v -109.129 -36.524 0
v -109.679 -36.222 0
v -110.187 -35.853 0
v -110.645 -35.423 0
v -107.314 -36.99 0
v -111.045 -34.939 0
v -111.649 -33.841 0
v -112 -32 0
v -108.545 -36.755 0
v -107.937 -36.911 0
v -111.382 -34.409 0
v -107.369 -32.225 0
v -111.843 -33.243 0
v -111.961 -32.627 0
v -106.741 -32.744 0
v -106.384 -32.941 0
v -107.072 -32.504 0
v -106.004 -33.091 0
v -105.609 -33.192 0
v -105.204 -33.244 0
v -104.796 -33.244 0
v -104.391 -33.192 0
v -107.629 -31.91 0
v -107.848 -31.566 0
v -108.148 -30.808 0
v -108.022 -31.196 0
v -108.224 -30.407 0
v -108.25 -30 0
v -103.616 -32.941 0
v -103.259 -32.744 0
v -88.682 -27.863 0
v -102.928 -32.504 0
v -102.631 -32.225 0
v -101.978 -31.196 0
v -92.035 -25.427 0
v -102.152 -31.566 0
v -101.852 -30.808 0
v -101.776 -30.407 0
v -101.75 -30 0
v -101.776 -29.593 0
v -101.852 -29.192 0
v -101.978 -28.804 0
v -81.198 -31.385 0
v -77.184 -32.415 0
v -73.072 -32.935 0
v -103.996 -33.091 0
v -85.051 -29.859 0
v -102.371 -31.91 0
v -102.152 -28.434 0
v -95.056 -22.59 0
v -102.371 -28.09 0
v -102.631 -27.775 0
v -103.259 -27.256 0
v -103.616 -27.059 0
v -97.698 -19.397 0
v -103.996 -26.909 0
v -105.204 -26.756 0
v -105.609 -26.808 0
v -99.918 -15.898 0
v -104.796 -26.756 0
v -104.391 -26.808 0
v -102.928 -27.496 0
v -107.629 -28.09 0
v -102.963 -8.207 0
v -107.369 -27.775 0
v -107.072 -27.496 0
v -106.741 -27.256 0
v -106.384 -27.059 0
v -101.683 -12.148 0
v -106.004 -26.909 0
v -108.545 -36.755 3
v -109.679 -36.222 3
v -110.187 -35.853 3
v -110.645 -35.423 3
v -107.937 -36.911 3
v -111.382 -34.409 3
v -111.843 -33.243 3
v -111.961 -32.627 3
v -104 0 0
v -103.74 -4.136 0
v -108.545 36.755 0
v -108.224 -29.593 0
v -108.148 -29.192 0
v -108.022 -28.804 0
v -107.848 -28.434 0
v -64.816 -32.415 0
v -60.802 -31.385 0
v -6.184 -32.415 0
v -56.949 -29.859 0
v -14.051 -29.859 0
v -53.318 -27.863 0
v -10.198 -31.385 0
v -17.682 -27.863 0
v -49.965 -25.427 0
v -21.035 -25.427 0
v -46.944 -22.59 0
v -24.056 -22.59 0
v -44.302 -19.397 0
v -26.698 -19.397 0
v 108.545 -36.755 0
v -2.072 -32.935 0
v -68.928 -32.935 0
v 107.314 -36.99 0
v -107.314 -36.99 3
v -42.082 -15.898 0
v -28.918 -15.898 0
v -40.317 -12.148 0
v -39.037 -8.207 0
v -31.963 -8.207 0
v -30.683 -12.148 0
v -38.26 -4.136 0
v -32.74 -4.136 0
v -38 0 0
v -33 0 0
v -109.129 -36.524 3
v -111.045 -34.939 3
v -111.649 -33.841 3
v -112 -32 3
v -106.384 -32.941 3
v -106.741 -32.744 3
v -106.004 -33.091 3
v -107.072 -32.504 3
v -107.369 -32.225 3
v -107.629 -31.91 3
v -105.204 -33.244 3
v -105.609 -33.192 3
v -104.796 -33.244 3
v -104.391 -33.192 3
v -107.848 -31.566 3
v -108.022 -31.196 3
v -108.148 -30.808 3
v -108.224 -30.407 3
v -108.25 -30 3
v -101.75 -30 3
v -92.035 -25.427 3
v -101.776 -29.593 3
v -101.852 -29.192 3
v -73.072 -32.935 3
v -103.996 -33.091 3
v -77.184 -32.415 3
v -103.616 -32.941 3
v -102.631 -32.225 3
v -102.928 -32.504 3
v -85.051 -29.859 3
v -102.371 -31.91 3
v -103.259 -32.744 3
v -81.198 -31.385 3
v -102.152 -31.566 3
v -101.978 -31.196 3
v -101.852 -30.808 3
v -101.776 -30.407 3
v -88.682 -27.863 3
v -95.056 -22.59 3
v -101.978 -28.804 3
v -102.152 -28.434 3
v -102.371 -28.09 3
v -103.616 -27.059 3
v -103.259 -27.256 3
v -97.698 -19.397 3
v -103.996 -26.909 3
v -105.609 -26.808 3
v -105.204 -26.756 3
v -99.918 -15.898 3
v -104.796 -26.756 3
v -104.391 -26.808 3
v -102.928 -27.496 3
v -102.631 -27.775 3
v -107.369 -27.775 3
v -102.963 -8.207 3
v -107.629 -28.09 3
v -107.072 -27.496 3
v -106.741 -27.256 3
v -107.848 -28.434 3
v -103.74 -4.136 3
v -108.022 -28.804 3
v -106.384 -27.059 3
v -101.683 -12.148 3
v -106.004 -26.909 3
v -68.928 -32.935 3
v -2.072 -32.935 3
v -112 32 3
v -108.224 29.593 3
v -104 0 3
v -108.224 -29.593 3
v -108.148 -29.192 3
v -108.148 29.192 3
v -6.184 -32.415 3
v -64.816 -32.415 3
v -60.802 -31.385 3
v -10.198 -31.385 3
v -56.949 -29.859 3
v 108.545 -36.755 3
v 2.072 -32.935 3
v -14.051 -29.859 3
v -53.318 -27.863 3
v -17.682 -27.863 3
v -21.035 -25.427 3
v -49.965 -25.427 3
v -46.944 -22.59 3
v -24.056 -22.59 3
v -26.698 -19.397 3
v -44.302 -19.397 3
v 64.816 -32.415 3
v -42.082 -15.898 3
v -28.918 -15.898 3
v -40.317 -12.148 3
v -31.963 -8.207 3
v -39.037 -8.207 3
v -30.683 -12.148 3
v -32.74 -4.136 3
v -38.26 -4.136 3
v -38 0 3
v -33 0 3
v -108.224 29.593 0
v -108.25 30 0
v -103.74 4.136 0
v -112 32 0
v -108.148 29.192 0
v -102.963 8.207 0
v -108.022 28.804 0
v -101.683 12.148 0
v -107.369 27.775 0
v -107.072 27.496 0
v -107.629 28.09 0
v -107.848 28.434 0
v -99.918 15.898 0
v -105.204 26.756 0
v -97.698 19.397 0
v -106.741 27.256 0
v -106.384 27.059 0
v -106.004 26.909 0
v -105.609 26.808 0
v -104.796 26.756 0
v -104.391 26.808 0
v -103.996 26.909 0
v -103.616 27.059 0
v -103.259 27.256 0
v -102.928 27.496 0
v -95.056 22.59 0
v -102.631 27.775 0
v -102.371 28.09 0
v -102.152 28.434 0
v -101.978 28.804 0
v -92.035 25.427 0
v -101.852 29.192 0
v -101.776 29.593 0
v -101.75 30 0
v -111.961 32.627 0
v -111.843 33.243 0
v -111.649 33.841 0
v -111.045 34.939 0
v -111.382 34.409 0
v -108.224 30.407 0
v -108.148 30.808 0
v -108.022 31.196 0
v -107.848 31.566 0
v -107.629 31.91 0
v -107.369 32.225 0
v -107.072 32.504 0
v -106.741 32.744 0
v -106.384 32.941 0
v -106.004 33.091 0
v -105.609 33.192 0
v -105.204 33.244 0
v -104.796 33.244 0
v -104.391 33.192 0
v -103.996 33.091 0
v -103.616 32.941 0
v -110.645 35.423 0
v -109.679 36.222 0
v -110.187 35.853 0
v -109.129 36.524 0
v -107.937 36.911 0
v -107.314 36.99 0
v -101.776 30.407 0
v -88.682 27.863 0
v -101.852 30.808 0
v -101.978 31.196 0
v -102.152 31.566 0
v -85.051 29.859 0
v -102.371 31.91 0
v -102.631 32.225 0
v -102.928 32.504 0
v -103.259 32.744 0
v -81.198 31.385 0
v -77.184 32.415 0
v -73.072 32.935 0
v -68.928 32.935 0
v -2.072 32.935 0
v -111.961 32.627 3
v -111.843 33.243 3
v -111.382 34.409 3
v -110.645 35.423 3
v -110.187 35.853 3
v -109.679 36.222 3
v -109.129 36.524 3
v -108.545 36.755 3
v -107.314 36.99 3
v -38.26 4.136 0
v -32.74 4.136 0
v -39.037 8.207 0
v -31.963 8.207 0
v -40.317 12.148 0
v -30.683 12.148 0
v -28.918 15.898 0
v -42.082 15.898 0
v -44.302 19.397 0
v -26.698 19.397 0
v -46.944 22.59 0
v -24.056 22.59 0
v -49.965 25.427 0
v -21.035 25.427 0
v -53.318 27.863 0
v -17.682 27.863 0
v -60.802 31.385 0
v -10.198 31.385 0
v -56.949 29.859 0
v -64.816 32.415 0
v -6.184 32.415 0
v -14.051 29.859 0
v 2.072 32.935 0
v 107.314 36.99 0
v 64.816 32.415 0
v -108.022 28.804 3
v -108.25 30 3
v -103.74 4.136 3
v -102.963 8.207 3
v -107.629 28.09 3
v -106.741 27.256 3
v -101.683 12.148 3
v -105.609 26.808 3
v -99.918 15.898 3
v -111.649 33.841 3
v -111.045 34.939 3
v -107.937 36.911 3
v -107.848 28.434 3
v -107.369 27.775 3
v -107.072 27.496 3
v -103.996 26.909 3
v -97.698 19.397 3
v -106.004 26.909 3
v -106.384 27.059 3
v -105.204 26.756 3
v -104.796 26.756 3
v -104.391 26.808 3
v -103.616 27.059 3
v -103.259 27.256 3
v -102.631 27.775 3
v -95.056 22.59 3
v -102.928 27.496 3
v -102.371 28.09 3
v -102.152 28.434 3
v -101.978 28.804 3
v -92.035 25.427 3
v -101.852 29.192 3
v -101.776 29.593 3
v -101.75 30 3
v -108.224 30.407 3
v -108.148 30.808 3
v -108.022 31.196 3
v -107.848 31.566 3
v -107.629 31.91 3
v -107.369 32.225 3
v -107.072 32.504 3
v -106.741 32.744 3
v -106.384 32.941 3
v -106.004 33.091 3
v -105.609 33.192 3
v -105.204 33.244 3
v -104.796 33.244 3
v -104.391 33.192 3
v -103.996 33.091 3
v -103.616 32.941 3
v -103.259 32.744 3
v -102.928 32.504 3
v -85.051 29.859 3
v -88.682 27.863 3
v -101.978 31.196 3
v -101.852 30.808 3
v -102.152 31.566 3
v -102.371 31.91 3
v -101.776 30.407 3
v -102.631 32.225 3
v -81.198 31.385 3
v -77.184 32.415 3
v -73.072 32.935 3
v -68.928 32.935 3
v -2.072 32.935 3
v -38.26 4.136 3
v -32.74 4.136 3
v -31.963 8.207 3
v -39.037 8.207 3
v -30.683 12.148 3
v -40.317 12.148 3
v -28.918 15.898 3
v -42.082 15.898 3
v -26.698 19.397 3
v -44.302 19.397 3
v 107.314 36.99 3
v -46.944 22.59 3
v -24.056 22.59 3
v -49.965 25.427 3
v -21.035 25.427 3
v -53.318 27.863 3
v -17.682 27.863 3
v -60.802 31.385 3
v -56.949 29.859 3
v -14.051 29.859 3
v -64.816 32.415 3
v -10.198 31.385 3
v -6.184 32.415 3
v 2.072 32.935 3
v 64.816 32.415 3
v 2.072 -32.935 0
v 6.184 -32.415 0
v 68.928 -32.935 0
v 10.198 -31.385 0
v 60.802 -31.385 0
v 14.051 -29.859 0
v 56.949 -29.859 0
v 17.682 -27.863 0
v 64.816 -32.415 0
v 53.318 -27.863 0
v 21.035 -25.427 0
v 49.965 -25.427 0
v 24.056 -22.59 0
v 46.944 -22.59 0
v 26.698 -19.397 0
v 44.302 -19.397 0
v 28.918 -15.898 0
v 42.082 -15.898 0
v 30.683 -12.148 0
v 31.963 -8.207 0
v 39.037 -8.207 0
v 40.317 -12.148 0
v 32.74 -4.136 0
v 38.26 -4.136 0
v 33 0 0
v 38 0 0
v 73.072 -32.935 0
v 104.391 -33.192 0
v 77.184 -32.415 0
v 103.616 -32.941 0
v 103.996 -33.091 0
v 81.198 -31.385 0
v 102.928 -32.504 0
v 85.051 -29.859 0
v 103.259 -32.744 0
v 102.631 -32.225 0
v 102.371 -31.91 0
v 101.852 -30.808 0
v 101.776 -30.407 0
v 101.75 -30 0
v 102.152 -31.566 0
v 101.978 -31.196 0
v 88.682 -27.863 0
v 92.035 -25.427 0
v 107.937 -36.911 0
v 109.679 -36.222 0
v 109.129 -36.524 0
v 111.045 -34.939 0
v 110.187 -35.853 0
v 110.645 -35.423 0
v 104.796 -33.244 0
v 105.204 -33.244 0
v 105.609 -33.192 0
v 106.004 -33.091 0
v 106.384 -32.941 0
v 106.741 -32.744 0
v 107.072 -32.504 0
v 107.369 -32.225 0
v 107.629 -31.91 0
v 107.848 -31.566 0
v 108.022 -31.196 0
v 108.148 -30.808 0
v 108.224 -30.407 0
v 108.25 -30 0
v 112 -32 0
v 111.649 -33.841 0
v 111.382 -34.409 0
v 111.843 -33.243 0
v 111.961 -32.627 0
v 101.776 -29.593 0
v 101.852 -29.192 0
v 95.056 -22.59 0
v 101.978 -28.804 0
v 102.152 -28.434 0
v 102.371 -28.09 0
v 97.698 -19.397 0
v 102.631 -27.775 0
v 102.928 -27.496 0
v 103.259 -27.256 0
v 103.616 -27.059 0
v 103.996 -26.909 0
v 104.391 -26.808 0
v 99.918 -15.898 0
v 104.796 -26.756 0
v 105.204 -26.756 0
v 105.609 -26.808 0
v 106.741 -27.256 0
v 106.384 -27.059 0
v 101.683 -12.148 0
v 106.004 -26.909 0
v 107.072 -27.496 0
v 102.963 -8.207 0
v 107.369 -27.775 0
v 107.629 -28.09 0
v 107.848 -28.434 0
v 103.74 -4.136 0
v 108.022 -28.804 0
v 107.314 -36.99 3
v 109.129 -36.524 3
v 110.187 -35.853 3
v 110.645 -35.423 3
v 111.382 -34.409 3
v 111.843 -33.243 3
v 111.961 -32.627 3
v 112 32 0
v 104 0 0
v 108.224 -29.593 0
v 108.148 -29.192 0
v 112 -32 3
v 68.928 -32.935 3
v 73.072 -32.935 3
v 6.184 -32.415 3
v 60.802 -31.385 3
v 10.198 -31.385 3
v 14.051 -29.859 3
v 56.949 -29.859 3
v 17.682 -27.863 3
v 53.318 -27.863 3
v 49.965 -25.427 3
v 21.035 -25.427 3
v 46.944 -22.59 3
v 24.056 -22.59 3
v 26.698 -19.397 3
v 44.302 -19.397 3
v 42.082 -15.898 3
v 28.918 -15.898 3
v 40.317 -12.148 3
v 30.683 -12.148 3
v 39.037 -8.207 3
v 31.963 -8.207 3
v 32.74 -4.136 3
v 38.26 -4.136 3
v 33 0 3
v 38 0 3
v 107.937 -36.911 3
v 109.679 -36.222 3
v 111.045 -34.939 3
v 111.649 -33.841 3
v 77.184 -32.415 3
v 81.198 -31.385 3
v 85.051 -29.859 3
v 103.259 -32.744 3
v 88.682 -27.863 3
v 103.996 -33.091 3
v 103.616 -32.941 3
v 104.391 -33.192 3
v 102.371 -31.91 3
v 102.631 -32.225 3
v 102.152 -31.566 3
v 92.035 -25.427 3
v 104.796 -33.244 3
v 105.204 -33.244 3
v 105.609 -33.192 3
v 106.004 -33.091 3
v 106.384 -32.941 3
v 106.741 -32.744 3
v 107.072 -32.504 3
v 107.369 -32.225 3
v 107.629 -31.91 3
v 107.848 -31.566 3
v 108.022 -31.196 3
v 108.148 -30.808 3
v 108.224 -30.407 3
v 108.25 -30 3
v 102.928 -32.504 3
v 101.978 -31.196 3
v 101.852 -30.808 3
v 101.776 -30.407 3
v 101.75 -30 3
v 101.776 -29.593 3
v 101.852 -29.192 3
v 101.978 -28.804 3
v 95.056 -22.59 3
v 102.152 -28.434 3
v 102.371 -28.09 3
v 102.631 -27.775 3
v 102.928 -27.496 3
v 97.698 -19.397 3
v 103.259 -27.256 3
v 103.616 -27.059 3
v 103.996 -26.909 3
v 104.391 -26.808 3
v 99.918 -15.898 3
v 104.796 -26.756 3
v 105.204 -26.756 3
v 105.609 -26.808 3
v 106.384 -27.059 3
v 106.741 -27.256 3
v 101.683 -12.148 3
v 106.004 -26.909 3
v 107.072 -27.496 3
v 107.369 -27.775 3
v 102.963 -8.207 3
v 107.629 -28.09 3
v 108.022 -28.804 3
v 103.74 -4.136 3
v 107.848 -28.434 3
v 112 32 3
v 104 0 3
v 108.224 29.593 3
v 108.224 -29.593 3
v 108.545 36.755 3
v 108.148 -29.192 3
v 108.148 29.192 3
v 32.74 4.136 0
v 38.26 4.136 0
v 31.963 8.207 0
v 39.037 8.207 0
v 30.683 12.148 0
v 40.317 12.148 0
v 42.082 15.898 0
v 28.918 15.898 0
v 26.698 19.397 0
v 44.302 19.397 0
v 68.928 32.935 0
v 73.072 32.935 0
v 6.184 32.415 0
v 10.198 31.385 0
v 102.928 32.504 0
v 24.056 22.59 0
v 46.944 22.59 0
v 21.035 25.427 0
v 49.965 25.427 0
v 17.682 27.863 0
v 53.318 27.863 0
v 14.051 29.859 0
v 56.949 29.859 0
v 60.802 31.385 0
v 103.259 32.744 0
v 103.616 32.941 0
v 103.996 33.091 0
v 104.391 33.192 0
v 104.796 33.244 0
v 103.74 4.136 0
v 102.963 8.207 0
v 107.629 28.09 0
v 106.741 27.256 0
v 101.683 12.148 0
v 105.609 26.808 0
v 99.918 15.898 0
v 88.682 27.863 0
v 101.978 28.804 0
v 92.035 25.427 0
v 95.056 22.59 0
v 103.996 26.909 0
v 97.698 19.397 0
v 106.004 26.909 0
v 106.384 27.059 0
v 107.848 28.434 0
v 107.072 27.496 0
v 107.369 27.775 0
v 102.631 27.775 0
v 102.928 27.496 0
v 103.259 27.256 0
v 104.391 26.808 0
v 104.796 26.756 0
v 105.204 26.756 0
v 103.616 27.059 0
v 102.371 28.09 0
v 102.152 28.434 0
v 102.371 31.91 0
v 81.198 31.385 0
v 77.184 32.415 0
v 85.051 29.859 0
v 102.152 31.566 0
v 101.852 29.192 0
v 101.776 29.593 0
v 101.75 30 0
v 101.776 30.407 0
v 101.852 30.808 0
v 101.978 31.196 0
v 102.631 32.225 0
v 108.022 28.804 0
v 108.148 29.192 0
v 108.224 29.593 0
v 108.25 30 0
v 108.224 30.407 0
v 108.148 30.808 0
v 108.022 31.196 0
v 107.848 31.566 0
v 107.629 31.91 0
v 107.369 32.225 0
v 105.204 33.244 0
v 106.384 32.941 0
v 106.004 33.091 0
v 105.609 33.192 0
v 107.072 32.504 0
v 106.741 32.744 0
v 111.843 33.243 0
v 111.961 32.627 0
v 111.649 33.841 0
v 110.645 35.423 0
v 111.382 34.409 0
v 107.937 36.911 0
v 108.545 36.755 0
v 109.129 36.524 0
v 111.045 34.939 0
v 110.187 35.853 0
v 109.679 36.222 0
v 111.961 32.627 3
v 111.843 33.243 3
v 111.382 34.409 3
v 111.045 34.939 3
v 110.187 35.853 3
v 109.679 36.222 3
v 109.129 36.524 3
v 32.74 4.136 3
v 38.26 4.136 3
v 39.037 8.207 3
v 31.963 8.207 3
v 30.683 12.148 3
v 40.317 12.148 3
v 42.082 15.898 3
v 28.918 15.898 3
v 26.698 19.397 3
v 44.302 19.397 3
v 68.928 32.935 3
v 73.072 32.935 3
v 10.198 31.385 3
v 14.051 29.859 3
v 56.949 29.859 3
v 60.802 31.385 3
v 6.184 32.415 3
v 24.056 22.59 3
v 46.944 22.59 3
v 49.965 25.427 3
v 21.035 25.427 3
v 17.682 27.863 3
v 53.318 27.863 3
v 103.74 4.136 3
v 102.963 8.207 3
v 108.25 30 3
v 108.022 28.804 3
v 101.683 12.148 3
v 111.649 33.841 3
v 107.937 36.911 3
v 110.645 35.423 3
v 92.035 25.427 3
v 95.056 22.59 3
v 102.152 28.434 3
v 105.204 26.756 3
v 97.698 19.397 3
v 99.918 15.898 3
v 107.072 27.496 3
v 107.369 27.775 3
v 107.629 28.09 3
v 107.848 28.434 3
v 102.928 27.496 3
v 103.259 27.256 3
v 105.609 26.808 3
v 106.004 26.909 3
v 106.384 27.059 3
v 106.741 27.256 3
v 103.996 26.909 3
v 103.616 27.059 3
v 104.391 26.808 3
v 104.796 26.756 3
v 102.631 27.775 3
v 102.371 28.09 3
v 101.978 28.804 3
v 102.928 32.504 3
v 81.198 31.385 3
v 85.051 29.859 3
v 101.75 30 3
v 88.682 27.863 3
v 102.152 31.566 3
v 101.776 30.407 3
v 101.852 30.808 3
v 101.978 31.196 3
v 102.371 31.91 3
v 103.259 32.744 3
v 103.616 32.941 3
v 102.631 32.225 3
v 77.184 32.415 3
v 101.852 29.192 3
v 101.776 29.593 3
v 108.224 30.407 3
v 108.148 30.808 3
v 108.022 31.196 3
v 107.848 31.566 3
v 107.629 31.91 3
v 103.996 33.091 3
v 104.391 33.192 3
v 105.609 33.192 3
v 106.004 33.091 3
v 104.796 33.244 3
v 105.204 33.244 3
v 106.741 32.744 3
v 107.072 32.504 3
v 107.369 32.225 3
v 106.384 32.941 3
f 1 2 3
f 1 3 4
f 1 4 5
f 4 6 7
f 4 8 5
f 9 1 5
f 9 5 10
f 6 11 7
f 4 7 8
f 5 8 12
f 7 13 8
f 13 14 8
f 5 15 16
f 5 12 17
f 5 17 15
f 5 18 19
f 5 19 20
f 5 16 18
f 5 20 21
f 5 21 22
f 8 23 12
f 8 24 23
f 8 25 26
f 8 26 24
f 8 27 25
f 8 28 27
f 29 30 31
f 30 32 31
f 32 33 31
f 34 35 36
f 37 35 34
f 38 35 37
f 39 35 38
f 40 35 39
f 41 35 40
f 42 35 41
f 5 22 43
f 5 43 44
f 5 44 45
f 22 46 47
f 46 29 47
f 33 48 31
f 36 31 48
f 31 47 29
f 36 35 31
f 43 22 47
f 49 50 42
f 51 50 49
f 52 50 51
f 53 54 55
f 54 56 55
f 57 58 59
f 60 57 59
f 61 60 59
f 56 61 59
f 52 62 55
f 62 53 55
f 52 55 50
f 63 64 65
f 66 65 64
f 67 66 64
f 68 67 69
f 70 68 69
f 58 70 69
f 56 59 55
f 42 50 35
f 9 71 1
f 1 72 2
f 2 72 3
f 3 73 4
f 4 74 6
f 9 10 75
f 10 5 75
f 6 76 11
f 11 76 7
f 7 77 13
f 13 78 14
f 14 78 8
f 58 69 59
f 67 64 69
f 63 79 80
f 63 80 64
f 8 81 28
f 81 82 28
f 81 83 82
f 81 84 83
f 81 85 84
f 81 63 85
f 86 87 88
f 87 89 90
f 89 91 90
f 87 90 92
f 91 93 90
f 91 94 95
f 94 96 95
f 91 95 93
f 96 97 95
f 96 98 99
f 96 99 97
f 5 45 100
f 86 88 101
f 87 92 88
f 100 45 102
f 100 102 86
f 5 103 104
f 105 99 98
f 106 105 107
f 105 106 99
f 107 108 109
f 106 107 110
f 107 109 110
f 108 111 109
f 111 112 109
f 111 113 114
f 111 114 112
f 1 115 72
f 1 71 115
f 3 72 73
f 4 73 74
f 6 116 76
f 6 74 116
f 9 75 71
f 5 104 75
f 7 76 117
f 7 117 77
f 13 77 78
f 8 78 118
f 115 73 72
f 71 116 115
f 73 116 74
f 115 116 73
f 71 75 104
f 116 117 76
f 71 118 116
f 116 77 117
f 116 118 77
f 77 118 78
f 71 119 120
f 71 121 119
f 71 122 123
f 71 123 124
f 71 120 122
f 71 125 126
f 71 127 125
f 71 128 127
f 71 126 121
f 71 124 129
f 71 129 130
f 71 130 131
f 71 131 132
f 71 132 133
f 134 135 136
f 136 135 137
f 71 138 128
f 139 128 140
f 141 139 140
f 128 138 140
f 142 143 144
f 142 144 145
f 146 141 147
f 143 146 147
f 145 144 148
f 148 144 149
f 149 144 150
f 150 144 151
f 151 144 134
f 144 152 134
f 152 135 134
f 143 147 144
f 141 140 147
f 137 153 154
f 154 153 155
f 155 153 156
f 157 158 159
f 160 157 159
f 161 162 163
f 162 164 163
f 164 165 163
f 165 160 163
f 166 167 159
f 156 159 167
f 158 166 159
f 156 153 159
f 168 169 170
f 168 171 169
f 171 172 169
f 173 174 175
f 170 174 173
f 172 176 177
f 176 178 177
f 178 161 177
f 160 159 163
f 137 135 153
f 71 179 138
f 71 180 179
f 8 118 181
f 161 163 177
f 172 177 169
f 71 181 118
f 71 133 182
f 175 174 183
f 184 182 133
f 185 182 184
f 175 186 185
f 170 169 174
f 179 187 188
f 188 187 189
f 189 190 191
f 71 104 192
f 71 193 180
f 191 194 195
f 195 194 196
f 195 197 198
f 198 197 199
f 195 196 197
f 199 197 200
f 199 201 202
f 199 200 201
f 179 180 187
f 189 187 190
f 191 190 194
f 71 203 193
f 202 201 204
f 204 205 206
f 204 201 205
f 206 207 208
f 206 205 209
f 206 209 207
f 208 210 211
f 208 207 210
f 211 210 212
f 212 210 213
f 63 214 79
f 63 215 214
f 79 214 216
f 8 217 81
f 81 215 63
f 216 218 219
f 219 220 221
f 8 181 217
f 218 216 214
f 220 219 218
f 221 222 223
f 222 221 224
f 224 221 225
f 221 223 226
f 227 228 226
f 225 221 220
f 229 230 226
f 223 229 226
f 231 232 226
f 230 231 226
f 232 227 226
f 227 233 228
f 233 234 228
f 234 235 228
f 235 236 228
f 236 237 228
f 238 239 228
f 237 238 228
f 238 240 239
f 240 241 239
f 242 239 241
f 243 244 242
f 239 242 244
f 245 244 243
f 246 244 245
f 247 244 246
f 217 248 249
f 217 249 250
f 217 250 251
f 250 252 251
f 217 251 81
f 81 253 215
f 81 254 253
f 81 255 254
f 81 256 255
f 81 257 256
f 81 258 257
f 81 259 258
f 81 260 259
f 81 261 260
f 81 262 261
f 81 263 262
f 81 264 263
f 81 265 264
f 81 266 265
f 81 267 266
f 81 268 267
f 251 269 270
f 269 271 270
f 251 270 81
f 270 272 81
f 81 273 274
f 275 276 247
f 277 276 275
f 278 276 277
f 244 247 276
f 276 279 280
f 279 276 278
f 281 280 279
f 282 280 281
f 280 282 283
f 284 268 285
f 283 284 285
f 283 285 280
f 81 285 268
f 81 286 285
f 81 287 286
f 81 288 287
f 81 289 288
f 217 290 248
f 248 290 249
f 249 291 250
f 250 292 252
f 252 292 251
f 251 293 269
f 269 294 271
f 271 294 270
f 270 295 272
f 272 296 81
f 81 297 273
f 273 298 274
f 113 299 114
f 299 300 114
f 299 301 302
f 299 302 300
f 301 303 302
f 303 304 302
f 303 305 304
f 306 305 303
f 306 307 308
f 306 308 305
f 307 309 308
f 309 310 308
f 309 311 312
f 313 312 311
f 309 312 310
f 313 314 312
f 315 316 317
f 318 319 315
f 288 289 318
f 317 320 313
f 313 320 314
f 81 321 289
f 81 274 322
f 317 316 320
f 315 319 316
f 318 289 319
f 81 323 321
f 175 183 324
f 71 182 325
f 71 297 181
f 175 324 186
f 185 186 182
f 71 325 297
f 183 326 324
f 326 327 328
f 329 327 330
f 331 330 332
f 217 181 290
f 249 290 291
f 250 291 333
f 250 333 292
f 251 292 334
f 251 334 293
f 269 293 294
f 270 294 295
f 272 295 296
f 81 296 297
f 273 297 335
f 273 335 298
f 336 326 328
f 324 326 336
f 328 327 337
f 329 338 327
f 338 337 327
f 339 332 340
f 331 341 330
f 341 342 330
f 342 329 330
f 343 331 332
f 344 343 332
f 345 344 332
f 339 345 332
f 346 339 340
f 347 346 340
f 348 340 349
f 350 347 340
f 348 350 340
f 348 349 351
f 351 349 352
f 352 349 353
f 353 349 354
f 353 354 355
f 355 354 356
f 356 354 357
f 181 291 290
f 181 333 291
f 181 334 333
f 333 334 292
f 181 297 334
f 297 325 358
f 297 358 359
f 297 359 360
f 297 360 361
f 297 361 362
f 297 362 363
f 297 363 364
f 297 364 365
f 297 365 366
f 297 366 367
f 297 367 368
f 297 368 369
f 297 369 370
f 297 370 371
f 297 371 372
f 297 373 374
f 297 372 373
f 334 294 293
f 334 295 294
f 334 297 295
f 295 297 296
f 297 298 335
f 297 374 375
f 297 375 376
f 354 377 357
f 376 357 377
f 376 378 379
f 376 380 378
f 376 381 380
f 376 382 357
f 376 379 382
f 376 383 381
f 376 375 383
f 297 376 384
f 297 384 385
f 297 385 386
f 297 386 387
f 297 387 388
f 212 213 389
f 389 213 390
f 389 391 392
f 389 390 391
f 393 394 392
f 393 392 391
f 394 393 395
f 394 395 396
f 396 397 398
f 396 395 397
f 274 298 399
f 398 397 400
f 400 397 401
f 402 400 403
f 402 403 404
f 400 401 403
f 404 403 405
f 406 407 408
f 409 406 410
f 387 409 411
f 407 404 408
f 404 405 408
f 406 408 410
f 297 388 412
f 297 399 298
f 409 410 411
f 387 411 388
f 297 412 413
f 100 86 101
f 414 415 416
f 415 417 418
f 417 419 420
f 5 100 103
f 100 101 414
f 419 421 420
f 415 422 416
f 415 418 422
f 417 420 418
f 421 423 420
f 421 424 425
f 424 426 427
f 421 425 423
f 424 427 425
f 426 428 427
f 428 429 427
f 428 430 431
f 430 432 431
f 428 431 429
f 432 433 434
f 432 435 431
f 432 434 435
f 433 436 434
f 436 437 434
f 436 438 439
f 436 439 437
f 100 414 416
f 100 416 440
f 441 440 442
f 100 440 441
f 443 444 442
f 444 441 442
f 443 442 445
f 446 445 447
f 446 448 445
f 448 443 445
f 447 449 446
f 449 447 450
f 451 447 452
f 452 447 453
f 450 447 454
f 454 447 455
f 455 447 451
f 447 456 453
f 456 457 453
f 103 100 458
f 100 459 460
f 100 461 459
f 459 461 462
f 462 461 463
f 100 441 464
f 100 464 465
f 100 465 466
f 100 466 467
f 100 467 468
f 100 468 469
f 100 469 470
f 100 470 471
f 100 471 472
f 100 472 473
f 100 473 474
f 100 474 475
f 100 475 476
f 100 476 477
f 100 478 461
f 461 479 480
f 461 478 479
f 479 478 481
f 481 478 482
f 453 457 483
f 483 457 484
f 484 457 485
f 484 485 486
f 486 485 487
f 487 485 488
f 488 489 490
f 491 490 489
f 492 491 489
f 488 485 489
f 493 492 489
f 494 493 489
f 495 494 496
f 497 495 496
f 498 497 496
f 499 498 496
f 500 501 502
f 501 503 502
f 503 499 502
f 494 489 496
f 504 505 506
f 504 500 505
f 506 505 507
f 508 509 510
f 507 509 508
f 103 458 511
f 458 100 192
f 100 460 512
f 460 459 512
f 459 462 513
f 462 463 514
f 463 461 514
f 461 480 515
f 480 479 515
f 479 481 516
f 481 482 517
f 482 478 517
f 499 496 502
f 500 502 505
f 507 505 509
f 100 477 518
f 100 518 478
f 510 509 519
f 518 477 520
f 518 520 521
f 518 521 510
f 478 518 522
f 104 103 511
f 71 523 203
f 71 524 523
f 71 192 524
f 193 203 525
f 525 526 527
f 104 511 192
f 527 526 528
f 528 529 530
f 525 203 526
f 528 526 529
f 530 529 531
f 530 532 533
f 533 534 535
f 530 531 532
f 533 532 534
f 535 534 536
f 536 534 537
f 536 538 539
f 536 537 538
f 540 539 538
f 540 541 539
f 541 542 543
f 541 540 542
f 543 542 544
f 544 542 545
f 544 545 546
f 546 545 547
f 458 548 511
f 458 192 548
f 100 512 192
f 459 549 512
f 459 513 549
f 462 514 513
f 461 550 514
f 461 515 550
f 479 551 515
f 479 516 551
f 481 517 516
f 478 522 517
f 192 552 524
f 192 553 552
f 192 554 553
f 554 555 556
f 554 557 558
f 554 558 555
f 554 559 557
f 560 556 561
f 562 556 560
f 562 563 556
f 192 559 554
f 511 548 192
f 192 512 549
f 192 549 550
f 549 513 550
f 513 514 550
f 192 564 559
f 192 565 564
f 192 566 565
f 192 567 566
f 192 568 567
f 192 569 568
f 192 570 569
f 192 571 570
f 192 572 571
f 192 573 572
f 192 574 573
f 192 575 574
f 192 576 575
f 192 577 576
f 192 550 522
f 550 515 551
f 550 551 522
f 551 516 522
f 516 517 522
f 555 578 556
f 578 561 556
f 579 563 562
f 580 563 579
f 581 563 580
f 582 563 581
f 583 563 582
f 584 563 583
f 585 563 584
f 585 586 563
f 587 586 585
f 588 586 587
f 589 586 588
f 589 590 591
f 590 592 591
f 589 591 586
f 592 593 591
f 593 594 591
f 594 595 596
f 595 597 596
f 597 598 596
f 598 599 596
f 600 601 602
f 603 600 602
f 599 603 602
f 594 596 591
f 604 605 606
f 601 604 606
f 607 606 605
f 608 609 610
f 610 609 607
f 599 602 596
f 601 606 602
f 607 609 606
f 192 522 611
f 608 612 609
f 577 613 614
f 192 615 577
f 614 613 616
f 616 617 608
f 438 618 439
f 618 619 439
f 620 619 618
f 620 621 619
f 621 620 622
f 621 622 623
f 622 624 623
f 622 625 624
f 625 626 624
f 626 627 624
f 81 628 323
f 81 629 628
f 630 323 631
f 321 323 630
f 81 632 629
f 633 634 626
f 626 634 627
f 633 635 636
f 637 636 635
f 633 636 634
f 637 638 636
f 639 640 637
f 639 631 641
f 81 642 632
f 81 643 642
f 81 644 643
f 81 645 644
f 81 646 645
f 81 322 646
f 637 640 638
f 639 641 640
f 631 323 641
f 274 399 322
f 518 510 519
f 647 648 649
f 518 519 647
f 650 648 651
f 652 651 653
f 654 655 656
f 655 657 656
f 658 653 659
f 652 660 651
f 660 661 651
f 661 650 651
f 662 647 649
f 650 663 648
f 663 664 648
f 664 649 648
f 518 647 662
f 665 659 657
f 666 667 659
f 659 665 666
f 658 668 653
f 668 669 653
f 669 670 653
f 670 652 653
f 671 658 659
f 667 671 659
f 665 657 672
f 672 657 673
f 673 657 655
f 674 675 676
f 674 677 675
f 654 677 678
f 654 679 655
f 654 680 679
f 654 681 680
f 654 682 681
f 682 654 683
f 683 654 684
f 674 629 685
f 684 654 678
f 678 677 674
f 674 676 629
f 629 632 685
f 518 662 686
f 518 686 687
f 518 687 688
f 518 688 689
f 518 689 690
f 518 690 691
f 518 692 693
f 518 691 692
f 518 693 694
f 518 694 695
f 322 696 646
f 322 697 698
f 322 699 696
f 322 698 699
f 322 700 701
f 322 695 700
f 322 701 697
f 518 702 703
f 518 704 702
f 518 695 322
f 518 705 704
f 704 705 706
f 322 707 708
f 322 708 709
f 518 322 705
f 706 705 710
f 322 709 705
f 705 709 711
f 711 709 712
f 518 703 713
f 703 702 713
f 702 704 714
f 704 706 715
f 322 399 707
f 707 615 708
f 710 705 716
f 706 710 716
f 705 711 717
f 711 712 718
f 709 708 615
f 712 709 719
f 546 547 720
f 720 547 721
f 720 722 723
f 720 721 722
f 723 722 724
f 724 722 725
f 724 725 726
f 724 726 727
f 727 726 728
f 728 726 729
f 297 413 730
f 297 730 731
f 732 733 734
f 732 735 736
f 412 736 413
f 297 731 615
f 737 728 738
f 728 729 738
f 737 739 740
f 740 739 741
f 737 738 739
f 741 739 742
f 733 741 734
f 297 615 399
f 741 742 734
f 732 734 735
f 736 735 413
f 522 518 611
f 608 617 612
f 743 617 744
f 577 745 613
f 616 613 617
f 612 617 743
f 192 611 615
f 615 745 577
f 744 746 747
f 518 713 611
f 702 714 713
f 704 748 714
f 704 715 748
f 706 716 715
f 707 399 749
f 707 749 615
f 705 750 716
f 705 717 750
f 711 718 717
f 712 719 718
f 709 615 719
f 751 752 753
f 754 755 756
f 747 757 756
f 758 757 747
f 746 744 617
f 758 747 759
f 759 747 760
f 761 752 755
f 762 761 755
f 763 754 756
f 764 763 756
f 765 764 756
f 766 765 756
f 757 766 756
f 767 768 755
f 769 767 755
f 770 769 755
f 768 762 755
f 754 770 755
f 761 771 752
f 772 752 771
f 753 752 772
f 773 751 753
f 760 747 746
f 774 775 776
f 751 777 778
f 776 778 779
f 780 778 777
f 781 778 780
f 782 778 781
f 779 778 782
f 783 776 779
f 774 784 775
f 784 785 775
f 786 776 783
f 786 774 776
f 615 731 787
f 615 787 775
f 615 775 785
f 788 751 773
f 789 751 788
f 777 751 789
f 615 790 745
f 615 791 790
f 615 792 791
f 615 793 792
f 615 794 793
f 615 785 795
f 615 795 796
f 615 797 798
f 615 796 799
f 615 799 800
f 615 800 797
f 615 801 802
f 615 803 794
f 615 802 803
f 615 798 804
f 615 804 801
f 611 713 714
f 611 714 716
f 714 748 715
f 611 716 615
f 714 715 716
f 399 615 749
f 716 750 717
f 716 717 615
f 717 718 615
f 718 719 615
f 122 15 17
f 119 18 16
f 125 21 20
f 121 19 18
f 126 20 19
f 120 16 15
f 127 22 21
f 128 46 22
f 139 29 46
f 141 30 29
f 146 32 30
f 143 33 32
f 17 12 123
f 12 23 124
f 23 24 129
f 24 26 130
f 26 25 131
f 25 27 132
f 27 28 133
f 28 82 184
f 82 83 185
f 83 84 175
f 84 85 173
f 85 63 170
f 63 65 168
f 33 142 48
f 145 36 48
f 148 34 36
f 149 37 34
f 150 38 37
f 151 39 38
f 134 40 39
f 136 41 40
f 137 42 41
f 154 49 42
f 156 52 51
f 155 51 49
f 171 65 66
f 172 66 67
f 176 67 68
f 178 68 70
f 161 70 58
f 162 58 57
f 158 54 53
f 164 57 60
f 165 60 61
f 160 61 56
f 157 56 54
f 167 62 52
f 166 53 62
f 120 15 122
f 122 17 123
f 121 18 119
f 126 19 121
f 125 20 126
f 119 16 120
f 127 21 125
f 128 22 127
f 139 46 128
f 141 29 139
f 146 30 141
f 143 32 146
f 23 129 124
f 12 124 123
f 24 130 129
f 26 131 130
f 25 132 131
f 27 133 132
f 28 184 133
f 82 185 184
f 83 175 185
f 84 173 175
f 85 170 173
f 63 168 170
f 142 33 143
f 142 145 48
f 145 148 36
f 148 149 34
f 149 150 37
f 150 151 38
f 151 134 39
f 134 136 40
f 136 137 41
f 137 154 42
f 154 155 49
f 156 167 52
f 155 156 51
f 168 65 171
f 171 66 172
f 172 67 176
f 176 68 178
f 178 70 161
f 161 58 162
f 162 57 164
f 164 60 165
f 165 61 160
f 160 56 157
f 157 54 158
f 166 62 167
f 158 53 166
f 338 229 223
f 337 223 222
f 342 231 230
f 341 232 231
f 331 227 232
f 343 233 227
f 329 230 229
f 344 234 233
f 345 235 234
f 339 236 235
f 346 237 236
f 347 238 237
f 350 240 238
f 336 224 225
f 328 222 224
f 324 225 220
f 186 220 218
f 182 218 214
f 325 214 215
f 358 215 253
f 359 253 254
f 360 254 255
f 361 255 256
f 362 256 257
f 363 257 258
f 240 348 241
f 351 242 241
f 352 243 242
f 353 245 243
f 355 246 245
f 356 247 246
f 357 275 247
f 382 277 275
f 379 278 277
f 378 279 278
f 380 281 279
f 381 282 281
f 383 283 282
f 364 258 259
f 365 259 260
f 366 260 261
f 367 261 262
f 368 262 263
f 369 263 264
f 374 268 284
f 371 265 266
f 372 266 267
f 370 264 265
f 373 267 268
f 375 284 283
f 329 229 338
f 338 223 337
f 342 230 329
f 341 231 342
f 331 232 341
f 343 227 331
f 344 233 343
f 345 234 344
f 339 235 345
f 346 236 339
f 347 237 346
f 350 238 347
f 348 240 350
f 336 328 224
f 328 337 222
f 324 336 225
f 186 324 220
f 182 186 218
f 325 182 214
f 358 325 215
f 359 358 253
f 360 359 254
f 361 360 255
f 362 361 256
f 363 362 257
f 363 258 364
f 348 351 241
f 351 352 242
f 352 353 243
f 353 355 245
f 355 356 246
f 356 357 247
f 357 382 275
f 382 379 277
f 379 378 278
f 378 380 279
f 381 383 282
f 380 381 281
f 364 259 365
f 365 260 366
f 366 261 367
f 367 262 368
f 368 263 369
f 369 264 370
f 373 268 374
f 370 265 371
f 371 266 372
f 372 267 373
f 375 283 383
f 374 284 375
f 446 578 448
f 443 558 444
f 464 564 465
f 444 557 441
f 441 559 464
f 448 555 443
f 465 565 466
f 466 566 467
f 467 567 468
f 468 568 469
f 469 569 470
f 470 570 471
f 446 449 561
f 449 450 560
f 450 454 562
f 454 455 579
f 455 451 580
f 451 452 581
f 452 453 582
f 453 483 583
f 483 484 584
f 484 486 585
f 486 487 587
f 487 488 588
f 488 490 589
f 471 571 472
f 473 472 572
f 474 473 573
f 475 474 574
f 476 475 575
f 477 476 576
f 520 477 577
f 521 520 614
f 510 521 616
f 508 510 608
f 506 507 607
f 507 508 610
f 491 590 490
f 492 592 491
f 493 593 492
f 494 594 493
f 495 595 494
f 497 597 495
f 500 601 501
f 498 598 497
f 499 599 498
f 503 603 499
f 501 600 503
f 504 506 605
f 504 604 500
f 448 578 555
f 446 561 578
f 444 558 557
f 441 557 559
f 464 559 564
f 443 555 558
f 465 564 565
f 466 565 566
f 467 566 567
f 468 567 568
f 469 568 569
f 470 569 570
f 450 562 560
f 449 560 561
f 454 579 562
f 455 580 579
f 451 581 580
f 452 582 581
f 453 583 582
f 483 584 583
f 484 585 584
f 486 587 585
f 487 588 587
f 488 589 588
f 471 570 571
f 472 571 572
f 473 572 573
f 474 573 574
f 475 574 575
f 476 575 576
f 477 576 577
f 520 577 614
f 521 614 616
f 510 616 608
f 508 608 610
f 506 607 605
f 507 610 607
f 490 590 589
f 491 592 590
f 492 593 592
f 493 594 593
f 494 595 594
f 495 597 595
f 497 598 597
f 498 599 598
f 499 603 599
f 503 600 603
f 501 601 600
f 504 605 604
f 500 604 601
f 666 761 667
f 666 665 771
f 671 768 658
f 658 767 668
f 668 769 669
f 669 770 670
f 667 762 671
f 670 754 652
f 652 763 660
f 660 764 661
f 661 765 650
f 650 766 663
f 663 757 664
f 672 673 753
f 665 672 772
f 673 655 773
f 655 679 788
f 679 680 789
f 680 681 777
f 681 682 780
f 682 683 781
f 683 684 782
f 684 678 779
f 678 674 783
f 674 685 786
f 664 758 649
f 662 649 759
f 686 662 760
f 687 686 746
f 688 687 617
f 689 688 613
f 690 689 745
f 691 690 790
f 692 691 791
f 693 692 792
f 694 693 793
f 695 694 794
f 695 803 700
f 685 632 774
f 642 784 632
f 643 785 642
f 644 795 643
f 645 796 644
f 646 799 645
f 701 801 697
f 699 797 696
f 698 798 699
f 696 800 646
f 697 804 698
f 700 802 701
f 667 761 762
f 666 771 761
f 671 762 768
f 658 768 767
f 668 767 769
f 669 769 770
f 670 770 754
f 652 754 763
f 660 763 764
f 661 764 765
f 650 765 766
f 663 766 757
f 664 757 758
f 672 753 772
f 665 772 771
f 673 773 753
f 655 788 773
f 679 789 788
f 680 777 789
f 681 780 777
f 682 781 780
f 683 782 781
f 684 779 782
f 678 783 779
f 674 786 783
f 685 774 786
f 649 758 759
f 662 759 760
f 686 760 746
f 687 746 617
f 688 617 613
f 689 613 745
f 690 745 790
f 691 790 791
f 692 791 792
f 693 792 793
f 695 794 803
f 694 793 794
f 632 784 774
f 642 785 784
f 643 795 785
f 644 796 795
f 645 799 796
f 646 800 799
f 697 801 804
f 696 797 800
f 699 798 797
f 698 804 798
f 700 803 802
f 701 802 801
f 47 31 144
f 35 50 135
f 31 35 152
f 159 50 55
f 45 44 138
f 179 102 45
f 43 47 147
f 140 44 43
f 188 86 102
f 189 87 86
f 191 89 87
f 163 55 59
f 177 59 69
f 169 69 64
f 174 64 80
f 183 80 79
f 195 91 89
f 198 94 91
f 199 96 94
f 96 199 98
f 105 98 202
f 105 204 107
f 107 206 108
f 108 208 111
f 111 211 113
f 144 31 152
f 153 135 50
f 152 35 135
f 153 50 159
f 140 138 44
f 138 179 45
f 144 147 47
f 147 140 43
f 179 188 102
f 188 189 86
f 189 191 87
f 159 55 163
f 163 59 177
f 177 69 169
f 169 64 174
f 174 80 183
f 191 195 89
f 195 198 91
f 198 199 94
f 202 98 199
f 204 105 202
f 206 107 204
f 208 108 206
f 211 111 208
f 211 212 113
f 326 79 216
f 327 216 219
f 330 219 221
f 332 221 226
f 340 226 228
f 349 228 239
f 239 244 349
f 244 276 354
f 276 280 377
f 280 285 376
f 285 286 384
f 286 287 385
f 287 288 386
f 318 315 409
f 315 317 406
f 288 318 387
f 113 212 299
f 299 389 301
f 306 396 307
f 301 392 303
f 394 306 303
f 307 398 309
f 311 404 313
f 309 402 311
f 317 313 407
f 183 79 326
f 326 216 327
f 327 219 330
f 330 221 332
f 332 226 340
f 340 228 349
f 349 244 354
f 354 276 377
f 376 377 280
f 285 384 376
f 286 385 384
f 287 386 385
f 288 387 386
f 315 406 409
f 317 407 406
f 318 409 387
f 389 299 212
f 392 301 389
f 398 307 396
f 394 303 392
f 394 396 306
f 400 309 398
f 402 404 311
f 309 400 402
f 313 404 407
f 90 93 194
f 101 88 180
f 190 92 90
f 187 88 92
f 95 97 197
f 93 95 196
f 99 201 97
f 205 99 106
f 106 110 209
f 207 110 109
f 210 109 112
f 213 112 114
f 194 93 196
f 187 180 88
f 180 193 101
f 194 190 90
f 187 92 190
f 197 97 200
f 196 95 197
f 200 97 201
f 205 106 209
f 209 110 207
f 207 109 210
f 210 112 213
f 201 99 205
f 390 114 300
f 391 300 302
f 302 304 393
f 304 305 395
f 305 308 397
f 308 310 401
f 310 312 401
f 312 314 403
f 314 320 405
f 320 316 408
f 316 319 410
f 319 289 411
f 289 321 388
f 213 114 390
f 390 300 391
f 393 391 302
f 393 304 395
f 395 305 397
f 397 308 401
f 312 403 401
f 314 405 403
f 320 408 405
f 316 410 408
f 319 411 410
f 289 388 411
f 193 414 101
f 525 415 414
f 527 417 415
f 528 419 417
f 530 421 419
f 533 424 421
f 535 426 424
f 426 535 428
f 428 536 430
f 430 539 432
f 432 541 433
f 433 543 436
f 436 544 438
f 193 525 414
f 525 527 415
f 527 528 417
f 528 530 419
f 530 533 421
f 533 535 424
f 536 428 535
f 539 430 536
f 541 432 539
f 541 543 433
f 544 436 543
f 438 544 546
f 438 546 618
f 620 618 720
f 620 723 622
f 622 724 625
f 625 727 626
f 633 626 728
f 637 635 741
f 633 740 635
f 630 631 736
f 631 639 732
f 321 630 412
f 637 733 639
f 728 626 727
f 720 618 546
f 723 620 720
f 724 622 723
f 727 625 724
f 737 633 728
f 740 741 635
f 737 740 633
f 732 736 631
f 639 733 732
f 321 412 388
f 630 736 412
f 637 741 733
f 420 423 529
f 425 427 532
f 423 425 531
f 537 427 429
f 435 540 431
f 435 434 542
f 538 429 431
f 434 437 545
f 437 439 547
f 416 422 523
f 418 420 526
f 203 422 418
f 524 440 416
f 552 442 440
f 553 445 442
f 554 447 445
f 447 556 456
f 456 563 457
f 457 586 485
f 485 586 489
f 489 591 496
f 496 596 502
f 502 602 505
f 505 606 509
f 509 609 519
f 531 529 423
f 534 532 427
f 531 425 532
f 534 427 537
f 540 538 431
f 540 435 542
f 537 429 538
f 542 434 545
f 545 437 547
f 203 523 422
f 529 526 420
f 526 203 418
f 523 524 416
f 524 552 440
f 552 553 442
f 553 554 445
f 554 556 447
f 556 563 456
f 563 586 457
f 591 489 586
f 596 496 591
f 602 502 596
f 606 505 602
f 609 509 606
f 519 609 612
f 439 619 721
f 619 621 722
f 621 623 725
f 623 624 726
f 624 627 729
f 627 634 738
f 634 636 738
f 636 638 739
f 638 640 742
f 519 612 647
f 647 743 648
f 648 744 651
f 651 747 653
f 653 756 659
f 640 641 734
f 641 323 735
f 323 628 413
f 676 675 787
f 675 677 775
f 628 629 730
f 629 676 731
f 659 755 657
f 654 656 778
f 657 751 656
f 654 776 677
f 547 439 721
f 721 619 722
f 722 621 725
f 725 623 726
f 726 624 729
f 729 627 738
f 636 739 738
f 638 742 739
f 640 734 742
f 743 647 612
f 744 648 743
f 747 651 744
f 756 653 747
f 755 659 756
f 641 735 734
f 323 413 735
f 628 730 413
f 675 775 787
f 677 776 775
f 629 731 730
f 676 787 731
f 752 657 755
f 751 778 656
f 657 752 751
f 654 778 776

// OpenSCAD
$fn = 50;

difference() {
	union() {
		hull() {
			translate(v = [-107.0, 32.0, 0]) {
				cylinder(h = 3, r = 5);
			}
			translate(v = [107.0, 32.0, 0]) {
				cylinder(h = 3, r = 5);
			}
			translate(v = [-107.0, -32.0, 0]) {
				cylinder(h = 3, r = 5);
			}
			translate(v = [107.0, -32.0, 0]) {
				cylinder(h = 3, r = 5);
			}
		}
	}
	union() {
		translate(v = [-105.0, -30.0, -100.0]) {
			cylinder(h = 200, r = 3.25);
		}
		translate(v = [-105.0, 30.0, -100.0]) {
			cylinder(h = 200, r = 3.25);
		}
		translate(v = [105.0, -30.0, -100.0]) {
			cylinder(h = 200, r = 3.25);
		}
		translate(v = [105.0, 30.0, -100.0]) {
			cylinder(h = 200, r = 3.25);
		}
		translate(v = [-105.0, -30.0, -100.0]) {
			cylinder(h = 200, r = 1.8);
		}
		translate(v = [-105.0, 30.0, -100.0]) {
			cylinder(h = 200, r = 1.8);
		}
		translate(v = [105.0, -30.0, -100.0]) {
			cylinder(h = 200, r = 1.8);
		}
		translate(v = [105.0, 30.0, -100.0]) {
			cylinder(h = 200, r = 1.8);
		}
		translate(v = [-71.0, 0, 0.0]) {
			cylinder(h = 3, r = 33.0);
		}
		cylinder(h = 3, r = 33.0);
		translate(v = [71.0, 0, 0.0]) {
			cylinder(h = 3, r = 33.0);
		}
	}
}
